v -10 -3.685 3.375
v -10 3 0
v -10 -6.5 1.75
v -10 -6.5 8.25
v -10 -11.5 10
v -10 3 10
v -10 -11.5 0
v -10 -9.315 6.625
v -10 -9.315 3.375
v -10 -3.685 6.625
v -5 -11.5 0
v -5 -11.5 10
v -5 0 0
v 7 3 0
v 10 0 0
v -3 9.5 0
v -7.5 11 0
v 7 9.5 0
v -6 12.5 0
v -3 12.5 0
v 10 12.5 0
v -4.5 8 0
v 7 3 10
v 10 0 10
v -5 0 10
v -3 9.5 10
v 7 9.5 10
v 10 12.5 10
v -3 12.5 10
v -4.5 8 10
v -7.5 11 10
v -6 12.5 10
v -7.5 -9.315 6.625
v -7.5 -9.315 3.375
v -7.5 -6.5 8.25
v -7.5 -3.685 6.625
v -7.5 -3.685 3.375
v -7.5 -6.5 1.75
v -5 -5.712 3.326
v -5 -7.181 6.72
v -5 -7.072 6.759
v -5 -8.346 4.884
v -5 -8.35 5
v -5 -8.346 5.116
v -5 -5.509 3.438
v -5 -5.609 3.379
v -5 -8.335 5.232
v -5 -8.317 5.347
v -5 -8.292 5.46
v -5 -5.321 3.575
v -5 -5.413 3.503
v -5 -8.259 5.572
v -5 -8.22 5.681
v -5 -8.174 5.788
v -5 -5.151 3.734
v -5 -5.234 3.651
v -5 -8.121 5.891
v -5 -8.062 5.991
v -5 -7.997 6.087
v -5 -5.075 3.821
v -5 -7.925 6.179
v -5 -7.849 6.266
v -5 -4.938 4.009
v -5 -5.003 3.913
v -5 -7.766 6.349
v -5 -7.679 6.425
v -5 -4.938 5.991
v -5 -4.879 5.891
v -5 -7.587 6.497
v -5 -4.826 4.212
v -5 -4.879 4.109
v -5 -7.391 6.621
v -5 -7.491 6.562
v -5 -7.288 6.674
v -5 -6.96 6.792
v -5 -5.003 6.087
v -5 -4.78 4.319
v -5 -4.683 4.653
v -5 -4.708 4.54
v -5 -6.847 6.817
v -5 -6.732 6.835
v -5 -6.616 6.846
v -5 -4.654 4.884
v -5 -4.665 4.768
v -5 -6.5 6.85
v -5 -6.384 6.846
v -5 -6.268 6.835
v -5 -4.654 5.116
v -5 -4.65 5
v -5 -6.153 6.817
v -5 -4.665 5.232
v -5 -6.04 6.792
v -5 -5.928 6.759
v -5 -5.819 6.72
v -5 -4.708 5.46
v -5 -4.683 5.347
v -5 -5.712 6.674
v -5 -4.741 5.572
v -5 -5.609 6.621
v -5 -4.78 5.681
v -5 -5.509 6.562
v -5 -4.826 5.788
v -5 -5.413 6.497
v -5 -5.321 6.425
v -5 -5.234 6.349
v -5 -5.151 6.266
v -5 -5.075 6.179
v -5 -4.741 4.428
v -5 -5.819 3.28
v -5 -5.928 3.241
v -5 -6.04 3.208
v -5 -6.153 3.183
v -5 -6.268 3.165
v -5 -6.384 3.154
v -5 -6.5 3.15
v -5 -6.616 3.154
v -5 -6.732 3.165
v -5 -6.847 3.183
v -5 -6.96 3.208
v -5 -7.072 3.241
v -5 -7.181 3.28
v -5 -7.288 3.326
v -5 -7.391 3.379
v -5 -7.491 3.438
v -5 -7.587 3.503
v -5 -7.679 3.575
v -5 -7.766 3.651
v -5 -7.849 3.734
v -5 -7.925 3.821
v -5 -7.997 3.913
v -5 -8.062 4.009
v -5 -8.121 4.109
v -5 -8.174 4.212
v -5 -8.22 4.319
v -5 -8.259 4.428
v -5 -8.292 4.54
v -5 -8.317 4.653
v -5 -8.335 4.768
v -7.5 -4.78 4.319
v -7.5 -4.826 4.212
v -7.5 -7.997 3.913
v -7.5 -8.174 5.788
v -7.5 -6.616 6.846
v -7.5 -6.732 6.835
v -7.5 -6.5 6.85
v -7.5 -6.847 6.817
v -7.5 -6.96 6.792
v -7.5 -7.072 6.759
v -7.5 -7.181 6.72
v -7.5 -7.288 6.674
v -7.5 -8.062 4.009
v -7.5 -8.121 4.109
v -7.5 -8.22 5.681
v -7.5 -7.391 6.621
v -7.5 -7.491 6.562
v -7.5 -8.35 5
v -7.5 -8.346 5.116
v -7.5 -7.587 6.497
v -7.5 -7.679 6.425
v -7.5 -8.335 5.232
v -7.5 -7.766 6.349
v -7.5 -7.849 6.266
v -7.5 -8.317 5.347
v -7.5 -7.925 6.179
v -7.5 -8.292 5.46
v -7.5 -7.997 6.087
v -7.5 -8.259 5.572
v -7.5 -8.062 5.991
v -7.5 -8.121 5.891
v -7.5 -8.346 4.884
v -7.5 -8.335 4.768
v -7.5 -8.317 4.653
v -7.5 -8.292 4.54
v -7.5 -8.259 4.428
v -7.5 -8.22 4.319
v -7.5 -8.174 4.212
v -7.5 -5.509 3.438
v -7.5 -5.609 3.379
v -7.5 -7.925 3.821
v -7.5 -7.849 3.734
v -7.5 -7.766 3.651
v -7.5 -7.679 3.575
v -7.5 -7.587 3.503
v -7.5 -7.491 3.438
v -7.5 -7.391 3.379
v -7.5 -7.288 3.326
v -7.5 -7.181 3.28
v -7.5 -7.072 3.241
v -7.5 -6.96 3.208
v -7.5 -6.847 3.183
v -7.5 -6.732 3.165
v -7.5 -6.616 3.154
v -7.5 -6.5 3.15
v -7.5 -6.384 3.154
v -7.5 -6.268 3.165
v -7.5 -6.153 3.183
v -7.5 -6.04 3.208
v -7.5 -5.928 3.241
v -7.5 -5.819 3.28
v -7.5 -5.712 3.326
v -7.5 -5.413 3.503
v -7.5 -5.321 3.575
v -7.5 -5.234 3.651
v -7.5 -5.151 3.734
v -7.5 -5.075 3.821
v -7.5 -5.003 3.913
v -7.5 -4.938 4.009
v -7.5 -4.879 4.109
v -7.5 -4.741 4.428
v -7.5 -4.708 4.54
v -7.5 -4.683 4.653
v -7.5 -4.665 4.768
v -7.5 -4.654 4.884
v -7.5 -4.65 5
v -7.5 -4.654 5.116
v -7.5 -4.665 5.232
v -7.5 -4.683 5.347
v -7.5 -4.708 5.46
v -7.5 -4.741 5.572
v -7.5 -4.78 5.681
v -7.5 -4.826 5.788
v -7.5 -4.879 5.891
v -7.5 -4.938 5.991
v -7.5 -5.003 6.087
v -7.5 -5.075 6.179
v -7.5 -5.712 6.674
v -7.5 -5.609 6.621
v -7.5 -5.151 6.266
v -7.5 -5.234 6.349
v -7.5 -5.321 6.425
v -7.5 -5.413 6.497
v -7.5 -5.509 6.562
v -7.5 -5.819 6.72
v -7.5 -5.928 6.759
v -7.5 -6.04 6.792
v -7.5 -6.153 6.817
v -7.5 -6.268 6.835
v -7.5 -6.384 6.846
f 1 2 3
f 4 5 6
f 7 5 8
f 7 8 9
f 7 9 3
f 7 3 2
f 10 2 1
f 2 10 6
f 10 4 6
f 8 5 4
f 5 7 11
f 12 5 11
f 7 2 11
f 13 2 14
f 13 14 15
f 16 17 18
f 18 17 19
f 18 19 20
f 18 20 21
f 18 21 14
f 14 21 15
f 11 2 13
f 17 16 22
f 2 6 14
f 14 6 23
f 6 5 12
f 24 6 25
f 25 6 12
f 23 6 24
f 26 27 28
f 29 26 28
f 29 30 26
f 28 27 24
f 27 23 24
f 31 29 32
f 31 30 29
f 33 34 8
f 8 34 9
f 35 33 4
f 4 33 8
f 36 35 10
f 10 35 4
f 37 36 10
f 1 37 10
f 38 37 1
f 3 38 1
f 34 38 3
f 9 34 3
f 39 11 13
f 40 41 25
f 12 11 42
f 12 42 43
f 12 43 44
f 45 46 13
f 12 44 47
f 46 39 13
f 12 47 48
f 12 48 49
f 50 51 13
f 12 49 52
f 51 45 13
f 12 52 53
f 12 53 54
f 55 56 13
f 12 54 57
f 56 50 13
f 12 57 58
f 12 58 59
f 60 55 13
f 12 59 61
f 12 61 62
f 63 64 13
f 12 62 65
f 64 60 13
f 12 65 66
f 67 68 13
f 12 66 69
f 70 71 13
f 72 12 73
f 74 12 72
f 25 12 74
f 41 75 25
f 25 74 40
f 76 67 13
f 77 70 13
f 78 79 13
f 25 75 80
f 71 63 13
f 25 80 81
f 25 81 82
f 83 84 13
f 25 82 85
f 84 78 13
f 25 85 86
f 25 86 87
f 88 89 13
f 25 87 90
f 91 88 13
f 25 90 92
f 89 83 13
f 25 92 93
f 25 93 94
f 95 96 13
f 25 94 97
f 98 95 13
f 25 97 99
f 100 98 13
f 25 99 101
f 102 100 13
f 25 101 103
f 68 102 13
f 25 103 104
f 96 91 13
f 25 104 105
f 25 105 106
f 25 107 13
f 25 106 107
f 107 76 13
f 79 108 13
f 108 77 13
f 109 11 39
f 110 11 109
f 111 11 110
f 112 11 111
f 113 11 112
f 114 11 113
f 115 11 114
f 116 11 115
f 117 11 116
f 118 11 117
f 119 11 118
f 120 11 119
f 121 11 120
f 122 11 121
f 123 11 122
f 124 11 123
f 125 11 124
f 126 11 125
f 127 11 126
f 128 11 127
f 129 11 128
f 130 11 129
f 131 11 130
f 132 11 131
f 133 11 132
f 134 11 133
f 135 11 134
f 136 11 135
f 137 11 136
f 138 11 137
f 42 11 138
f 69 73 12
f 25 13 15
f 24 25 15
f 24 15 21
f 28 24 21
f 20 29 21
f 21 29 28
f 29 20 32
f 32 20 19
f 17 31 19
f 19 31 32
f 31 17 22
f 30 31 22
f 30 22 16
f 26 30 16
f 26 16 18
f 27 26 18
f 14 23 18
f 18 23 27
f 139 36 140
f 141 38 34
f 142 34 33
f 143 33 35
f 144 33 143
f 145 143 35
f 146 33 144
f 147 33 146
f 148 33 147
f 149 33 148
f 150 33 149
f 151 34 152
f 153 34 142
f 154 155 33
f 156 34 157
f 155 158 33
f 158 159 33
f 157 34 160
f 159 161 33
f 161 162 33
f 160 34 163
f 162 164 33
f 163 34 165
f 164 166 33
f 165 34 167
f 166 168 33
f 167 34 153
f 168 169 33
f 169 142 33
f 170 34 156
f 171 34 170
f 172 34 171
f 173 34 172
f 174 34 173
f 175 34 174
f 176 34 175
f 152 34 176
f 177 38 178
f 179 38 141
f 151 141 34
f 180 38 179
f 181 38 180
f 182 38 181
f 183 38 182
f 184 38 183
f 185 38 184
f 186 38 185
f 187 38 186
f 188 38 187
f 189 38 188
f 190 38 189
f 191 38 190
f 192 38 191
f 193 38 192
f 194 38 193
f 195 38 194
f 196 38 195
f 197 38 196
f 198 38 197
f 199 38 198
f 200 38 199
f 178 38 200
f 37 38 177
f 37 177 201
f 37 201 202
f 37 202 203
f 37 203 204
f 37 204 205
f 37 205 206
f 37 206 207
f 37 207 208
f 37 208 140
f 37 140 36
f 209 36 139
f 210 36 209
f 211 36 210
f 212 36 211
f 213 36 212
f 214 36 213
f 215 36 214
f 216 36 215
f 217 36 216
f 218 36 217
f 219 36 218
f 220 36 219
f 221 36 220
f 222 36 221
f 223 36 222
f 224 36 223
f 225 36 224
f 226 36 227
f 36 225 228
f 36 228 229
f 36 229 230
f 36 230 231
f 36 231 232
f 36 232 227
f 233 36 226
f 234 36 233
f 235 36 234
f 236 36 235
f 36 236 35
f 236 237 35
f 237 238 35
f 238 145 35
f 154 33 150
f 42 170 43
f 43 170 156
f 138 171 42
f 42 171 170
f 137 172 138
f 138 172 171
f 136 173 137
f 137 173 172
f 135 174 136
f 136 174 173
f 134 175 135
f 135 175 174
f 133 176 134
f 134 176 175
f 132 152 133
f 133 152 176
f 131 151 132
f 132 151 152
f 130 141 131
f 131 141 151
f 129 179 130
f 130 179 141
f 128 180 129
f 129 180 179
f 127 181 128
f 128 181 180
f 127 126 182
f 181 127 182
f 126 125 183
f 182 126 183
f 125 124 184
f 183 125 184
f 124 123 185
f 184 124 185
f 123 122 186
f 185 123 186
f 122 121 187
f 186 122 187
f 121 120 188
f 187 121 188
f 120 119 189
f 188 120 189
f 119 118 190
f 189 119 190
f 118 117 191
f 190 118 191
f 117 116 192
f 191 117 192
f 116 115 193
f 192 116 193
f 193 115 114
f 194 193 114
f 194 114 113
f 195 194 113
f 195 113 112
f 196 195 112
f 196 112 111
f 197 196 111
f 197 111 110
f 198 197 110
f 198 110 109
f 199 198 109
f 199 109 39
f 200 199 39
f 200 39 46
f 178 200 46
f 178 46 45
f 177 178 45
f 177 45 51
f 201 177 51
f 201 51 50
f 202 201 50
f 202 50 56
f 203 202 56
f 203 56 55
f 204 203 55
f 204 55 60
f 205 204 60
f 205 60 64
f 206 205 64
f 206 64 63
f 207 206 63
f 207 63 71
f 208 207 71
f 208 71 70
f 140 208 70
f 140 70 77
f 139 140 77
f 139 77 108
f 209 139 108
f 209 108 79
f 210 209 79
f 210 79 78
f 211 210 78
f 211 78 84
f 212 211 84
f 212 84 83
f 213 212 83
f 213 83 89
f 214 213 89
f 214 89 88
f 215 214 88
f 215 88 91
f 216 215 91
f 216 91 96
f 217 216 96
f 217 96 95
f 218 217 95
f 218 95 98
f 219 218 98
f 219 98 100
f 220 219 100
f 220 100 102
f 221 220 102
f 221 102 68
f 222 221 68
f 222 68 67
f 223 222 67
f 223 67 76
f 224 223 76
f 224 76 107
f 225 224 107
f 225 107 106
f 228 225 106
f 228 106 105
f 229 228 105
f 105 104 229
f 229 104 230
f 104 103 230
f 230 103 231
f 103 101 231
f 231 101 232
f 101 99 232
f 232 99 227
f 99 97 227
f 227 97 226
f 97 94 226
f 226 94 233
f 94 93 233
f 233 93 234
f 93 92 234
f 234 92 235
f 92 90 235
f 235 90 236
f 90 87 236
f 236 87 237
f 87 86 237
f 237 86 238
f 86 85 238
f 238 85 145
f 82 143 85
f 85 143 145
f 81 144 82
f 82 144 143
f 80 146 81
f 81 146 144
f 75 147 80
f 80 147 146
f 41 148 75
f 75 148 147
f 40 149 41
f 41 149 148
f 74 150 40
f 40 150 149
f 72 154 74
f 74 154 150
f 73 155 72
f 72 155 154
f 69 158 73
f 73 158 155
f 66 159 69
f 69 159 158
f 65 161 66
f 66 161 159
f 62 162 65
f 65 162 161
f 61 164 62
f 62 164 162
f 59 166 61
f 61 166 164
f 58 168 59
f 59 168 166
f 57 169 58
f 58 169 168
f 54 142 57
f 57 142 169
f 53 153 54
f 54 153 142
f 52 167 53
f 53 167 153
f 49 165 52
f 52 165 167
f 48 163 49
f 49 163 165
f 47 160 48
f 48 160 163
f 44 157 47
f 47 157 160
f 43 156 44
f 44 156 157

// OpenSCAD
//---------------------------------------------------------------
//--  Eje Y final de carrera base.  (c) Antonio Castro Gómez
//---------------------------------------------------------------
//-- Released under the GPL license
//---------------------------------------------------------------





translate([0,1.5,5])cube(size=[20,3,10], center=true);//central
translate([8.5,7.75,5])cube(size=[3,9.5,10], center=true);//lado base
translate([2,11,5])cube(size=[10,3,10], center=true);//lado pestaña

//pestaña
difference()
{
	translate([-4.5,11,5])cylinder(h=10, r=3, $fn=4, center=true);
	translate([-4.5,14,5])cube(size=[3,3,10], center=true);

}
difference()
{
	translate([-7.5,-5.25,5])cube(size=[5,12.5,10], center=true);//tornillo
	translate([-9,-6.5,5])rotate([0,90,0])cylinder(h=3, r=3.25, $fn=6, center=true);//tuerca
	translate([-9,-6.5,5])rotate([0,90,0])cylinder(h=30, r=1.85, $fn=100, center=true);//tuerca

}

	
